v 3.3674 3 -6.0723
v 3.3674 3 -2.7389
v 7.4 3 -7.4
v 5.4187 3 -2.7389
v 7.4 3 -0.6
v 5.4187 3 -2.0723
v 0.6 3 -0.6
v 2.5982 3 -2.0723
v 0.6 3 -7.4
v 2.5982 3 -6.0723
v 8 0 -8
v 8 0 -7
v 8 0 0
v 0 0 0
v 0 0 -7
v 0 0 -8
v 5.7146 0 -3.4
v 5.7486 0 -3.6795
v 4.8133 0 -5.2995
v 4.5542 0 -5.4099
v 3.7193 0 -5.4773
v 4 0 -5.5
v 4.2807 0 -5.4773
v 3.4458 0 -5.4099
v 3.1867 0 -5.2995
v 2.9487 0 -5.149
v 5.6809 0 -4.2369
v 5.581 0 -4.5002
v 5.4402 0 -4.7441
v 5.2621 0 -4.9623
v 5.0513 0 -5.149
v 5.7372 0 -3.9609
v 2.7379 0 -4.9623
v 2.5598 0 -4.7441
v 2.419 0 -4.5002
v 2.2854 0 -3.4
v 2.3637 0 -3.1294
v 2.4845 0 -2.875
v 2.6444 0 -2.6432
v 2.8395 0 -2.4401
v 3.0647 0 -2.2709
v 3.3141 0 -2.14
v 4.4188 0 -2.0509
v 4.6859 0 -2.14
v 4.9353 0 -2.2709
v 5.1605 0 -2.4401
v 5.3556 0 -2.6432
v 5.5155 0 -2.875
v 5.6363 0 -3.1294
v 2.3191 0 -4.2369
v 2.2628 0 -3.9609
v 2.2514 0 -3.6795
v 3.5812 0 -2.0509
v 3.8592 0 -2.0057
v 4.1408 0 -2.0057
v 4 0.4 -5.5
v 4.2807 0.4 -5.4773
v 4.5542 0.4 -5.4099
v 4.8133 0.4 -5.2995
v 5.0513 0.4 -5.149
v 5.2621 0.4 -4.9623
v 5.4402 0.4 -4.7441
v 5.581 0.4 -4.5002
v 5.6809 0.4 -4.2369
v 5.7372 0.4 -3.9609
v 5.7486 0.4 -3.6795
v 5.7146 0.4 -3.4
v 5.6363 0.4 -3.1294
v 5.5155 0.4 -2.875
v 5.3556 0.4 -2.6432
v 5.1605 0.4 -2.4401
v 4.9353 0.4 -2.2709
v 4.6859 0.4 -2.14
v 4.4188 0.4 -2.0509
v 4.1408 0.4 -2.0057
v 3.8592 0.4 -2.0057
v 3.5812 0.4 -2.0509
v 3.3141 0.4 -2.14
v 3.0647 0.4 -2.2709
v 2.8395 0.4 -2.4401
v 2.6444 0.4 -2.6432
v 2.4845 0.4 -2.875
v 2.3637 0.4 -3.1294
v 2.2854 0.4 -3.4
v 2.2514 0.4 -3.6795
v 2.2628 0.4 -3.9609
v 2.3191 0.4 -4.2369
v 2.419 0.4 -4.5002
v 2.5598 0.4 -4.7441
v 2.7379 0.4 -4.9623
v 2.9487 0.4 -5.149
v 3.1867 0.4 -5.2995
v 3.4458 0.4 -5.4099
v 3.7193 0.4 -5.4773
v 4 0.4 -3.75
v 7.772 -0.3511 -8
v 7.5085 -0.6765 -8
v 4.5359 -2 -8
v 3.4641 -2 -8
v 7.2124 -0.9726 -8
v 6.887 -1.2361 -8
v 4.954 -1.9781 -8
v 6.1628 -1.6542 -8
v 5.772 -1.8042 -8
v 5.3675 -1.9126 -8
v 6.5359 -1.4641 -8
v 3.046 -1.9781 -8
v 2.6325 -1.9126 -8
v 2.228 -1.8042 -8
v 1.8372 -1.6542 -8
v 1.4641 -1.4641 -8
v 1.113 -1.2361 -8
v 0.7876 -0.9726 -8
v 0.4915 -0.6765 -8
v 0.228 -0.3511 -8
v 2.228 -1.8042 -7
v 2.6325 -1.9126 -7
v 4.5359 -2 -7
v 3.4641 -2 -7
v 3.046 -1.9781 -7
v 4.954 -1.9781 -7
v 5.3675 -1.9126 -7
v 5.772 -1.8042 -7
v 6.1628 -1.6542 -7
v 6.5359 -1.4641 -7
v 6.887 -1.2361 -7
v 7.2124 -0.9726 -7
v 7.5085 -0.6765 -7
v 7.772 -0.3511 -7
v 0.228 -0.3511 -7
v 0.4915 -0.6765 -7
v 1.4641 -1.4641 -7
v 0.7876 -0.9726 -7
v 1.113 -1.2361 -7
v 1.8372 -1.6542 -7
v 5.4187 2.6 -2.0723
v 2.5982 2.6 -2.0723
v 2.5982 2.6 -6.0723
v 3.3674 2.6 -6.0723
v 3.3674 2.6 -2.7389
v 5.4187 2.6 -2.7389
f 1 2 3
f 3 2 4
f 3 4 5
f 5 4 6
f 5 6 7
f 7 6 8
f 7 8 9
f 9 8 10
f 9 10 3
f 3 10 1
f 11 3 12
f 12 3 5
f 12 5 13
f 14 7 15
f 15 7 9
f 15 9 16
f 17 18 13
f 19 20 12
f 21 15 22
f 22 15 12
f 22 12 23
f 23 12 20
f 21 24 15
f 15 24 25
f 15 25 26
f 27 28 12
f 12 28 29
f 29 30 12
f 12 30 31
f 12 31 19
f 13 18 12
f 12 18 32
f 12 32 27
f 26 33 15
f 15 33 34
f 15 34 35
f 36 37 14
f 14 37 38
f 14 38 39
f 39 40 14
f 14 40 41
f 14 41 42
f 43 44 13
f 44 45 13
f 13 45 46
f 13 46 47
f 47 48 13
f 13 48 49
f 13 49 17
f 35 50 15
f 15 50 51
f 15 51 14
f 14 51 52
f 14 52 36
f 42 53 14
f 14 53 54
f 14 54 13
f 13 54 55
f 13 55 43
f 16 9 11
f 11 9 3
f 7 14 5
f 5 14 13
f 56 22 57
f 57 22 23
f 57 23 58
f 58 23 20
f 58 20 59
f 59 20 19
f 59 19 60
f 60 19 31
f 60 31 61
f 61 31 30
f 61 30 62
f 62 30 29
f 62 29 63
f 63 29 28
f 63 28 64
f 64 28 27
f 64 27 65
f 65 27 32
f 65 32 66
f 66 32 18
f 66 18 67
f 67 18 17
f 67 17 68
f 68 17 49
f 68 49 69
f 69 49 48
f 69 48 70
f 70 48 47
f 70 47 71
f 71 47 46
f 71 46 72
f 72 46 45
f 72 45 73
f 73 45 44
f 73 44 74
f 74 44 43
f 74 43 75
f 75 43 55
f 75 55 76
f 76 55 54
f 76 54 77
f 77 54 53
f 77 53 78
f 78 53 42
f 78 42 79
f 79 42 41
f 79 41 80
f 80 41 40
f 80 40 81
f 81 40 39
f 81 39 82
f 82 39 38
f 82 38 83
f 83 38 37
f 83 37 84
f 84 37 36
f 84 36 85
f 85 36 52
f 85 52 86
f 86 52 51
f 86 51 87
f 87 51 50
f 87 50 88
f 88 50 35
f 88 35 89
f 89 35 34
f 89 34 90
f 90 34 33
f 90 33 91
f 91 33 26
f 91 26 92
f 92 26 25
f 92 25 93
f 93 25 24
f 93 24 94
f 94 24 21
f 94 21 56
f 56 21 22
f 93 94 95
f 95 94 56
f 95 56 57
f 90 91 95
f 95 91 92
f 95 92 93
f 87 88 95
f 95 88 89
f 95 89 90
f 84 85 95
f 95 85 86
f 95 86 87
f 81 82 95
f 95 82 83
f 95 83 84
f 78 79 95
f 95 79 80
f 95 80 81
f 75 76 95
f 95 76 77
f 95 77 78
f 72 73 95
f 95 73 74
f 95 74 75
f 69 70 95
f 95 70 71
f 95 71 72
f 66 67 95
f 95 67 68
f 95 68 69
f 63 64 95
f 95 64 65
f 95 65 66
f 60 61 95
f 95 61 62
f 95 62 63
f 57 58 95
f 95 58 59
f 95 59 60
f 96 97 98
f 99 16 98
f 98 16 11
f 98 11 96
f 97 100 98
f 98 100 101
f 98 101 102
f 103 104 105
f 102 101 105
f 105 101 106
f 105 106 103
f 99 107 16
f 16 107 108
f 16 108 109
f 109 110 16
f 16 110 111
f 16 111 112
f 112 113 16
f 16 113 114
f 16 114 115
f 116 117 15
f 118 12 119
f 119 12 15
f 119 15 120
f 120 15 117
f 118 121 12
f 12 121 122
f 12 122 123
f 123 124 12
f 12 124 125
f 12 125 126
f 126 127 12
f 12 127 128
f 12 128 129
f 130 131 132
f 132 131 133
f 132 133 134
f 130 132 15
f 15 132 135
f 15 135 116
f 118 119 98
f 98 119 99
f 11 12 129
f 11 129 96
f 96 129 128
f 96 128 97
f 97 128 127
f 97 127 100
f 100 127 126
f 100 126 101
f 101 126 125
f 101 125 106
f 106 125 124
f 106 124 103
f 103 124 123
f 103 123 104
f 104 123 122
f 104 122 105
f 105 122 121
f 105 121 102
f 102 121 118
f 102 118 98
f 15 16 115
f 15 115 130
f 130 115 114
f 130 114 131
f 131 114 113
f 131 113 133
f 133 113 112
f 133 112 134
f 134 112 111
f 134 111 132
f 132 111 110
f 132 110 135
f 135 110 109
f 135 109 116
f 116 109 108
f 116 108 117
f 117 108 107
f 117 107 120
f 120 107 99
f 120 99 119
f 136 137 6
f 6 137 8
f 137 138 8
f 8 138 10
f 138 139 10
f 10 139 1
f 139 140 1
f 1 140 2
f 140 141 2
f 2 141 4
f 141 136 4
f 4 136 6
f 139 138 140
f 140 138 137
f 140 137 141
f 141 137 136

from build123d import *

# Parameters (mm, degrees)
SKETCH1_W               = 8
SKETCH1_H               = 8
BOSS_EXTRUDE1_DEPTH     = 3
CUT_EXTRUDE1_DEPTH      = 12.704699911
CUT_EXTRUDE1_DEPTH_BACK = 12.704699911
CUT_EXTRUDE2_DEPTH      = 11
SKETCH4_R               = 1.75
CUT_EXTRUDE3_DEPTH      = 0.4
SKETCH5_W               = 8
SKETCH5_H               = 1
BOSS_EXTRUDE2_DEPTH     = 2
FILLET1_R               = 4
CUT_EXTRUDE4_DEPTH      = 0.4


with BuildPart() as part:
    # Sketch1 → Boss-Extrude1 (new body)
    with BuildSketch(Plane(origin=(0, 0, 0), x_dir=(1, 0, 0), z_dir=(0, 1, 0))):
        with Locations((4, 4)):
            Rectangle(SKETCH1_W, SKETCH1_H)
    extrude(amount=BOSS_EXTRUDE1_DEPTH)

    # Sketch2 → Cut-Extrude1 (cut, two sides: drawn at the far end of the back side and taken through both)
    with BuildSketch(Plane.XY.offset(-CUT_EXTRUDE1_DEPTH_BACK)):
        Polygon((0, 0), (0.6, 3), (0, 3), align=None)
        Polygon((8, 0), (7.4, 3), (8, 3), align=None)
    extrude(amount=CUT_EXTRUDE1_DEPTH + CUT_EXTRUDE1_DEPTH_BACK, mode=Mode.SUBTRACT)

    # Sketch3 → Cut-Extrude2 (cut)
    with BuildSketch(Plane(origin=(0, 0, 0), x_dir=(0, 0, -1), z_dir=(1, 0, 0))):
        Polygon((0, 0), (0.6, 3), (0, 3), align=None)
        Polygon((8, 3), (7.4, 3), (8, 0), align=None)
    extrude(amount=CUT_EXTRUDE2_DEPTH, mode=Mode.SUBTRACT)

    # Sketch4 → Cut-Extrude3 (cut)
    with BuildSketch(Plane.XZ):
        with Locations(Location((4, -3.75, 0), (0, 0, 270))):
            Circle(SKETCH4_R)
    extrude(amount=-CUT_EXTRUDE3_DEPTH, mode=Mode.SUBTRACT)

    # Sketch5 → Boss-Extrude2 (add)
    with BuildSketch(Plane.XZ):
        with Locations((4, -7.5)):
            Rectangle(SKETCH5_W, SKETCH5_H)
    extrude(amount=BOSS_EXTRUDE2_DEPTH)

    # Fillet1
    # the kernel refuses this fillet: 4 mm, written as the material it takes off along each edge
    with BuildSketch(Plane(origin=(8, -2, -16.660254038), x_dir=(0, 1, 0), z_dir=(0, 0, 1)), Plane(origin=(0, -2, 1.660254038), x_dir=(0, 1, 0), z_dir=(0, 0, -1))) as fillet1_piece_1:
        with BuildLine():
            CenterArc((4, 3.464101615), FILLET1_R, 180, 60)
            Line((0, 3.464101615), (-0.08, 3.464101615))
            Line((-0.08, 3.464101615), (-0.08, 0))
            Line((-0.08, 0), (0, -0.08))
            ThreePointArc((0, -0.08), (1, -0.08), (1.96, -0.069282032))
            Line((1.96, -0.069282032), (2, 0))
        make_face()
    extrude(amount=18.320508076, mode=Mode.SUBTRACT)

    # Sketch6 → Cut-Extrude4 (cut)
    with BuildSketch(Plane(origin=(0, 3, 0), x_dir=(1, 0, 0), z_dir=(0, 1, 0))):
        Polygon((2.598201218, 2.07225421), (2.598201218, 6.07225421), (3.367431987, 6.07225421), (3.367431987, 2.738920877), (5.418714038, 2.738920877), (5.418714038, 2.07225421), align=None)
    extrude(amount=-CUT_EXTRUDE4_DEPTH, mode=Mode.SUBTRACT)


solid = part.part
